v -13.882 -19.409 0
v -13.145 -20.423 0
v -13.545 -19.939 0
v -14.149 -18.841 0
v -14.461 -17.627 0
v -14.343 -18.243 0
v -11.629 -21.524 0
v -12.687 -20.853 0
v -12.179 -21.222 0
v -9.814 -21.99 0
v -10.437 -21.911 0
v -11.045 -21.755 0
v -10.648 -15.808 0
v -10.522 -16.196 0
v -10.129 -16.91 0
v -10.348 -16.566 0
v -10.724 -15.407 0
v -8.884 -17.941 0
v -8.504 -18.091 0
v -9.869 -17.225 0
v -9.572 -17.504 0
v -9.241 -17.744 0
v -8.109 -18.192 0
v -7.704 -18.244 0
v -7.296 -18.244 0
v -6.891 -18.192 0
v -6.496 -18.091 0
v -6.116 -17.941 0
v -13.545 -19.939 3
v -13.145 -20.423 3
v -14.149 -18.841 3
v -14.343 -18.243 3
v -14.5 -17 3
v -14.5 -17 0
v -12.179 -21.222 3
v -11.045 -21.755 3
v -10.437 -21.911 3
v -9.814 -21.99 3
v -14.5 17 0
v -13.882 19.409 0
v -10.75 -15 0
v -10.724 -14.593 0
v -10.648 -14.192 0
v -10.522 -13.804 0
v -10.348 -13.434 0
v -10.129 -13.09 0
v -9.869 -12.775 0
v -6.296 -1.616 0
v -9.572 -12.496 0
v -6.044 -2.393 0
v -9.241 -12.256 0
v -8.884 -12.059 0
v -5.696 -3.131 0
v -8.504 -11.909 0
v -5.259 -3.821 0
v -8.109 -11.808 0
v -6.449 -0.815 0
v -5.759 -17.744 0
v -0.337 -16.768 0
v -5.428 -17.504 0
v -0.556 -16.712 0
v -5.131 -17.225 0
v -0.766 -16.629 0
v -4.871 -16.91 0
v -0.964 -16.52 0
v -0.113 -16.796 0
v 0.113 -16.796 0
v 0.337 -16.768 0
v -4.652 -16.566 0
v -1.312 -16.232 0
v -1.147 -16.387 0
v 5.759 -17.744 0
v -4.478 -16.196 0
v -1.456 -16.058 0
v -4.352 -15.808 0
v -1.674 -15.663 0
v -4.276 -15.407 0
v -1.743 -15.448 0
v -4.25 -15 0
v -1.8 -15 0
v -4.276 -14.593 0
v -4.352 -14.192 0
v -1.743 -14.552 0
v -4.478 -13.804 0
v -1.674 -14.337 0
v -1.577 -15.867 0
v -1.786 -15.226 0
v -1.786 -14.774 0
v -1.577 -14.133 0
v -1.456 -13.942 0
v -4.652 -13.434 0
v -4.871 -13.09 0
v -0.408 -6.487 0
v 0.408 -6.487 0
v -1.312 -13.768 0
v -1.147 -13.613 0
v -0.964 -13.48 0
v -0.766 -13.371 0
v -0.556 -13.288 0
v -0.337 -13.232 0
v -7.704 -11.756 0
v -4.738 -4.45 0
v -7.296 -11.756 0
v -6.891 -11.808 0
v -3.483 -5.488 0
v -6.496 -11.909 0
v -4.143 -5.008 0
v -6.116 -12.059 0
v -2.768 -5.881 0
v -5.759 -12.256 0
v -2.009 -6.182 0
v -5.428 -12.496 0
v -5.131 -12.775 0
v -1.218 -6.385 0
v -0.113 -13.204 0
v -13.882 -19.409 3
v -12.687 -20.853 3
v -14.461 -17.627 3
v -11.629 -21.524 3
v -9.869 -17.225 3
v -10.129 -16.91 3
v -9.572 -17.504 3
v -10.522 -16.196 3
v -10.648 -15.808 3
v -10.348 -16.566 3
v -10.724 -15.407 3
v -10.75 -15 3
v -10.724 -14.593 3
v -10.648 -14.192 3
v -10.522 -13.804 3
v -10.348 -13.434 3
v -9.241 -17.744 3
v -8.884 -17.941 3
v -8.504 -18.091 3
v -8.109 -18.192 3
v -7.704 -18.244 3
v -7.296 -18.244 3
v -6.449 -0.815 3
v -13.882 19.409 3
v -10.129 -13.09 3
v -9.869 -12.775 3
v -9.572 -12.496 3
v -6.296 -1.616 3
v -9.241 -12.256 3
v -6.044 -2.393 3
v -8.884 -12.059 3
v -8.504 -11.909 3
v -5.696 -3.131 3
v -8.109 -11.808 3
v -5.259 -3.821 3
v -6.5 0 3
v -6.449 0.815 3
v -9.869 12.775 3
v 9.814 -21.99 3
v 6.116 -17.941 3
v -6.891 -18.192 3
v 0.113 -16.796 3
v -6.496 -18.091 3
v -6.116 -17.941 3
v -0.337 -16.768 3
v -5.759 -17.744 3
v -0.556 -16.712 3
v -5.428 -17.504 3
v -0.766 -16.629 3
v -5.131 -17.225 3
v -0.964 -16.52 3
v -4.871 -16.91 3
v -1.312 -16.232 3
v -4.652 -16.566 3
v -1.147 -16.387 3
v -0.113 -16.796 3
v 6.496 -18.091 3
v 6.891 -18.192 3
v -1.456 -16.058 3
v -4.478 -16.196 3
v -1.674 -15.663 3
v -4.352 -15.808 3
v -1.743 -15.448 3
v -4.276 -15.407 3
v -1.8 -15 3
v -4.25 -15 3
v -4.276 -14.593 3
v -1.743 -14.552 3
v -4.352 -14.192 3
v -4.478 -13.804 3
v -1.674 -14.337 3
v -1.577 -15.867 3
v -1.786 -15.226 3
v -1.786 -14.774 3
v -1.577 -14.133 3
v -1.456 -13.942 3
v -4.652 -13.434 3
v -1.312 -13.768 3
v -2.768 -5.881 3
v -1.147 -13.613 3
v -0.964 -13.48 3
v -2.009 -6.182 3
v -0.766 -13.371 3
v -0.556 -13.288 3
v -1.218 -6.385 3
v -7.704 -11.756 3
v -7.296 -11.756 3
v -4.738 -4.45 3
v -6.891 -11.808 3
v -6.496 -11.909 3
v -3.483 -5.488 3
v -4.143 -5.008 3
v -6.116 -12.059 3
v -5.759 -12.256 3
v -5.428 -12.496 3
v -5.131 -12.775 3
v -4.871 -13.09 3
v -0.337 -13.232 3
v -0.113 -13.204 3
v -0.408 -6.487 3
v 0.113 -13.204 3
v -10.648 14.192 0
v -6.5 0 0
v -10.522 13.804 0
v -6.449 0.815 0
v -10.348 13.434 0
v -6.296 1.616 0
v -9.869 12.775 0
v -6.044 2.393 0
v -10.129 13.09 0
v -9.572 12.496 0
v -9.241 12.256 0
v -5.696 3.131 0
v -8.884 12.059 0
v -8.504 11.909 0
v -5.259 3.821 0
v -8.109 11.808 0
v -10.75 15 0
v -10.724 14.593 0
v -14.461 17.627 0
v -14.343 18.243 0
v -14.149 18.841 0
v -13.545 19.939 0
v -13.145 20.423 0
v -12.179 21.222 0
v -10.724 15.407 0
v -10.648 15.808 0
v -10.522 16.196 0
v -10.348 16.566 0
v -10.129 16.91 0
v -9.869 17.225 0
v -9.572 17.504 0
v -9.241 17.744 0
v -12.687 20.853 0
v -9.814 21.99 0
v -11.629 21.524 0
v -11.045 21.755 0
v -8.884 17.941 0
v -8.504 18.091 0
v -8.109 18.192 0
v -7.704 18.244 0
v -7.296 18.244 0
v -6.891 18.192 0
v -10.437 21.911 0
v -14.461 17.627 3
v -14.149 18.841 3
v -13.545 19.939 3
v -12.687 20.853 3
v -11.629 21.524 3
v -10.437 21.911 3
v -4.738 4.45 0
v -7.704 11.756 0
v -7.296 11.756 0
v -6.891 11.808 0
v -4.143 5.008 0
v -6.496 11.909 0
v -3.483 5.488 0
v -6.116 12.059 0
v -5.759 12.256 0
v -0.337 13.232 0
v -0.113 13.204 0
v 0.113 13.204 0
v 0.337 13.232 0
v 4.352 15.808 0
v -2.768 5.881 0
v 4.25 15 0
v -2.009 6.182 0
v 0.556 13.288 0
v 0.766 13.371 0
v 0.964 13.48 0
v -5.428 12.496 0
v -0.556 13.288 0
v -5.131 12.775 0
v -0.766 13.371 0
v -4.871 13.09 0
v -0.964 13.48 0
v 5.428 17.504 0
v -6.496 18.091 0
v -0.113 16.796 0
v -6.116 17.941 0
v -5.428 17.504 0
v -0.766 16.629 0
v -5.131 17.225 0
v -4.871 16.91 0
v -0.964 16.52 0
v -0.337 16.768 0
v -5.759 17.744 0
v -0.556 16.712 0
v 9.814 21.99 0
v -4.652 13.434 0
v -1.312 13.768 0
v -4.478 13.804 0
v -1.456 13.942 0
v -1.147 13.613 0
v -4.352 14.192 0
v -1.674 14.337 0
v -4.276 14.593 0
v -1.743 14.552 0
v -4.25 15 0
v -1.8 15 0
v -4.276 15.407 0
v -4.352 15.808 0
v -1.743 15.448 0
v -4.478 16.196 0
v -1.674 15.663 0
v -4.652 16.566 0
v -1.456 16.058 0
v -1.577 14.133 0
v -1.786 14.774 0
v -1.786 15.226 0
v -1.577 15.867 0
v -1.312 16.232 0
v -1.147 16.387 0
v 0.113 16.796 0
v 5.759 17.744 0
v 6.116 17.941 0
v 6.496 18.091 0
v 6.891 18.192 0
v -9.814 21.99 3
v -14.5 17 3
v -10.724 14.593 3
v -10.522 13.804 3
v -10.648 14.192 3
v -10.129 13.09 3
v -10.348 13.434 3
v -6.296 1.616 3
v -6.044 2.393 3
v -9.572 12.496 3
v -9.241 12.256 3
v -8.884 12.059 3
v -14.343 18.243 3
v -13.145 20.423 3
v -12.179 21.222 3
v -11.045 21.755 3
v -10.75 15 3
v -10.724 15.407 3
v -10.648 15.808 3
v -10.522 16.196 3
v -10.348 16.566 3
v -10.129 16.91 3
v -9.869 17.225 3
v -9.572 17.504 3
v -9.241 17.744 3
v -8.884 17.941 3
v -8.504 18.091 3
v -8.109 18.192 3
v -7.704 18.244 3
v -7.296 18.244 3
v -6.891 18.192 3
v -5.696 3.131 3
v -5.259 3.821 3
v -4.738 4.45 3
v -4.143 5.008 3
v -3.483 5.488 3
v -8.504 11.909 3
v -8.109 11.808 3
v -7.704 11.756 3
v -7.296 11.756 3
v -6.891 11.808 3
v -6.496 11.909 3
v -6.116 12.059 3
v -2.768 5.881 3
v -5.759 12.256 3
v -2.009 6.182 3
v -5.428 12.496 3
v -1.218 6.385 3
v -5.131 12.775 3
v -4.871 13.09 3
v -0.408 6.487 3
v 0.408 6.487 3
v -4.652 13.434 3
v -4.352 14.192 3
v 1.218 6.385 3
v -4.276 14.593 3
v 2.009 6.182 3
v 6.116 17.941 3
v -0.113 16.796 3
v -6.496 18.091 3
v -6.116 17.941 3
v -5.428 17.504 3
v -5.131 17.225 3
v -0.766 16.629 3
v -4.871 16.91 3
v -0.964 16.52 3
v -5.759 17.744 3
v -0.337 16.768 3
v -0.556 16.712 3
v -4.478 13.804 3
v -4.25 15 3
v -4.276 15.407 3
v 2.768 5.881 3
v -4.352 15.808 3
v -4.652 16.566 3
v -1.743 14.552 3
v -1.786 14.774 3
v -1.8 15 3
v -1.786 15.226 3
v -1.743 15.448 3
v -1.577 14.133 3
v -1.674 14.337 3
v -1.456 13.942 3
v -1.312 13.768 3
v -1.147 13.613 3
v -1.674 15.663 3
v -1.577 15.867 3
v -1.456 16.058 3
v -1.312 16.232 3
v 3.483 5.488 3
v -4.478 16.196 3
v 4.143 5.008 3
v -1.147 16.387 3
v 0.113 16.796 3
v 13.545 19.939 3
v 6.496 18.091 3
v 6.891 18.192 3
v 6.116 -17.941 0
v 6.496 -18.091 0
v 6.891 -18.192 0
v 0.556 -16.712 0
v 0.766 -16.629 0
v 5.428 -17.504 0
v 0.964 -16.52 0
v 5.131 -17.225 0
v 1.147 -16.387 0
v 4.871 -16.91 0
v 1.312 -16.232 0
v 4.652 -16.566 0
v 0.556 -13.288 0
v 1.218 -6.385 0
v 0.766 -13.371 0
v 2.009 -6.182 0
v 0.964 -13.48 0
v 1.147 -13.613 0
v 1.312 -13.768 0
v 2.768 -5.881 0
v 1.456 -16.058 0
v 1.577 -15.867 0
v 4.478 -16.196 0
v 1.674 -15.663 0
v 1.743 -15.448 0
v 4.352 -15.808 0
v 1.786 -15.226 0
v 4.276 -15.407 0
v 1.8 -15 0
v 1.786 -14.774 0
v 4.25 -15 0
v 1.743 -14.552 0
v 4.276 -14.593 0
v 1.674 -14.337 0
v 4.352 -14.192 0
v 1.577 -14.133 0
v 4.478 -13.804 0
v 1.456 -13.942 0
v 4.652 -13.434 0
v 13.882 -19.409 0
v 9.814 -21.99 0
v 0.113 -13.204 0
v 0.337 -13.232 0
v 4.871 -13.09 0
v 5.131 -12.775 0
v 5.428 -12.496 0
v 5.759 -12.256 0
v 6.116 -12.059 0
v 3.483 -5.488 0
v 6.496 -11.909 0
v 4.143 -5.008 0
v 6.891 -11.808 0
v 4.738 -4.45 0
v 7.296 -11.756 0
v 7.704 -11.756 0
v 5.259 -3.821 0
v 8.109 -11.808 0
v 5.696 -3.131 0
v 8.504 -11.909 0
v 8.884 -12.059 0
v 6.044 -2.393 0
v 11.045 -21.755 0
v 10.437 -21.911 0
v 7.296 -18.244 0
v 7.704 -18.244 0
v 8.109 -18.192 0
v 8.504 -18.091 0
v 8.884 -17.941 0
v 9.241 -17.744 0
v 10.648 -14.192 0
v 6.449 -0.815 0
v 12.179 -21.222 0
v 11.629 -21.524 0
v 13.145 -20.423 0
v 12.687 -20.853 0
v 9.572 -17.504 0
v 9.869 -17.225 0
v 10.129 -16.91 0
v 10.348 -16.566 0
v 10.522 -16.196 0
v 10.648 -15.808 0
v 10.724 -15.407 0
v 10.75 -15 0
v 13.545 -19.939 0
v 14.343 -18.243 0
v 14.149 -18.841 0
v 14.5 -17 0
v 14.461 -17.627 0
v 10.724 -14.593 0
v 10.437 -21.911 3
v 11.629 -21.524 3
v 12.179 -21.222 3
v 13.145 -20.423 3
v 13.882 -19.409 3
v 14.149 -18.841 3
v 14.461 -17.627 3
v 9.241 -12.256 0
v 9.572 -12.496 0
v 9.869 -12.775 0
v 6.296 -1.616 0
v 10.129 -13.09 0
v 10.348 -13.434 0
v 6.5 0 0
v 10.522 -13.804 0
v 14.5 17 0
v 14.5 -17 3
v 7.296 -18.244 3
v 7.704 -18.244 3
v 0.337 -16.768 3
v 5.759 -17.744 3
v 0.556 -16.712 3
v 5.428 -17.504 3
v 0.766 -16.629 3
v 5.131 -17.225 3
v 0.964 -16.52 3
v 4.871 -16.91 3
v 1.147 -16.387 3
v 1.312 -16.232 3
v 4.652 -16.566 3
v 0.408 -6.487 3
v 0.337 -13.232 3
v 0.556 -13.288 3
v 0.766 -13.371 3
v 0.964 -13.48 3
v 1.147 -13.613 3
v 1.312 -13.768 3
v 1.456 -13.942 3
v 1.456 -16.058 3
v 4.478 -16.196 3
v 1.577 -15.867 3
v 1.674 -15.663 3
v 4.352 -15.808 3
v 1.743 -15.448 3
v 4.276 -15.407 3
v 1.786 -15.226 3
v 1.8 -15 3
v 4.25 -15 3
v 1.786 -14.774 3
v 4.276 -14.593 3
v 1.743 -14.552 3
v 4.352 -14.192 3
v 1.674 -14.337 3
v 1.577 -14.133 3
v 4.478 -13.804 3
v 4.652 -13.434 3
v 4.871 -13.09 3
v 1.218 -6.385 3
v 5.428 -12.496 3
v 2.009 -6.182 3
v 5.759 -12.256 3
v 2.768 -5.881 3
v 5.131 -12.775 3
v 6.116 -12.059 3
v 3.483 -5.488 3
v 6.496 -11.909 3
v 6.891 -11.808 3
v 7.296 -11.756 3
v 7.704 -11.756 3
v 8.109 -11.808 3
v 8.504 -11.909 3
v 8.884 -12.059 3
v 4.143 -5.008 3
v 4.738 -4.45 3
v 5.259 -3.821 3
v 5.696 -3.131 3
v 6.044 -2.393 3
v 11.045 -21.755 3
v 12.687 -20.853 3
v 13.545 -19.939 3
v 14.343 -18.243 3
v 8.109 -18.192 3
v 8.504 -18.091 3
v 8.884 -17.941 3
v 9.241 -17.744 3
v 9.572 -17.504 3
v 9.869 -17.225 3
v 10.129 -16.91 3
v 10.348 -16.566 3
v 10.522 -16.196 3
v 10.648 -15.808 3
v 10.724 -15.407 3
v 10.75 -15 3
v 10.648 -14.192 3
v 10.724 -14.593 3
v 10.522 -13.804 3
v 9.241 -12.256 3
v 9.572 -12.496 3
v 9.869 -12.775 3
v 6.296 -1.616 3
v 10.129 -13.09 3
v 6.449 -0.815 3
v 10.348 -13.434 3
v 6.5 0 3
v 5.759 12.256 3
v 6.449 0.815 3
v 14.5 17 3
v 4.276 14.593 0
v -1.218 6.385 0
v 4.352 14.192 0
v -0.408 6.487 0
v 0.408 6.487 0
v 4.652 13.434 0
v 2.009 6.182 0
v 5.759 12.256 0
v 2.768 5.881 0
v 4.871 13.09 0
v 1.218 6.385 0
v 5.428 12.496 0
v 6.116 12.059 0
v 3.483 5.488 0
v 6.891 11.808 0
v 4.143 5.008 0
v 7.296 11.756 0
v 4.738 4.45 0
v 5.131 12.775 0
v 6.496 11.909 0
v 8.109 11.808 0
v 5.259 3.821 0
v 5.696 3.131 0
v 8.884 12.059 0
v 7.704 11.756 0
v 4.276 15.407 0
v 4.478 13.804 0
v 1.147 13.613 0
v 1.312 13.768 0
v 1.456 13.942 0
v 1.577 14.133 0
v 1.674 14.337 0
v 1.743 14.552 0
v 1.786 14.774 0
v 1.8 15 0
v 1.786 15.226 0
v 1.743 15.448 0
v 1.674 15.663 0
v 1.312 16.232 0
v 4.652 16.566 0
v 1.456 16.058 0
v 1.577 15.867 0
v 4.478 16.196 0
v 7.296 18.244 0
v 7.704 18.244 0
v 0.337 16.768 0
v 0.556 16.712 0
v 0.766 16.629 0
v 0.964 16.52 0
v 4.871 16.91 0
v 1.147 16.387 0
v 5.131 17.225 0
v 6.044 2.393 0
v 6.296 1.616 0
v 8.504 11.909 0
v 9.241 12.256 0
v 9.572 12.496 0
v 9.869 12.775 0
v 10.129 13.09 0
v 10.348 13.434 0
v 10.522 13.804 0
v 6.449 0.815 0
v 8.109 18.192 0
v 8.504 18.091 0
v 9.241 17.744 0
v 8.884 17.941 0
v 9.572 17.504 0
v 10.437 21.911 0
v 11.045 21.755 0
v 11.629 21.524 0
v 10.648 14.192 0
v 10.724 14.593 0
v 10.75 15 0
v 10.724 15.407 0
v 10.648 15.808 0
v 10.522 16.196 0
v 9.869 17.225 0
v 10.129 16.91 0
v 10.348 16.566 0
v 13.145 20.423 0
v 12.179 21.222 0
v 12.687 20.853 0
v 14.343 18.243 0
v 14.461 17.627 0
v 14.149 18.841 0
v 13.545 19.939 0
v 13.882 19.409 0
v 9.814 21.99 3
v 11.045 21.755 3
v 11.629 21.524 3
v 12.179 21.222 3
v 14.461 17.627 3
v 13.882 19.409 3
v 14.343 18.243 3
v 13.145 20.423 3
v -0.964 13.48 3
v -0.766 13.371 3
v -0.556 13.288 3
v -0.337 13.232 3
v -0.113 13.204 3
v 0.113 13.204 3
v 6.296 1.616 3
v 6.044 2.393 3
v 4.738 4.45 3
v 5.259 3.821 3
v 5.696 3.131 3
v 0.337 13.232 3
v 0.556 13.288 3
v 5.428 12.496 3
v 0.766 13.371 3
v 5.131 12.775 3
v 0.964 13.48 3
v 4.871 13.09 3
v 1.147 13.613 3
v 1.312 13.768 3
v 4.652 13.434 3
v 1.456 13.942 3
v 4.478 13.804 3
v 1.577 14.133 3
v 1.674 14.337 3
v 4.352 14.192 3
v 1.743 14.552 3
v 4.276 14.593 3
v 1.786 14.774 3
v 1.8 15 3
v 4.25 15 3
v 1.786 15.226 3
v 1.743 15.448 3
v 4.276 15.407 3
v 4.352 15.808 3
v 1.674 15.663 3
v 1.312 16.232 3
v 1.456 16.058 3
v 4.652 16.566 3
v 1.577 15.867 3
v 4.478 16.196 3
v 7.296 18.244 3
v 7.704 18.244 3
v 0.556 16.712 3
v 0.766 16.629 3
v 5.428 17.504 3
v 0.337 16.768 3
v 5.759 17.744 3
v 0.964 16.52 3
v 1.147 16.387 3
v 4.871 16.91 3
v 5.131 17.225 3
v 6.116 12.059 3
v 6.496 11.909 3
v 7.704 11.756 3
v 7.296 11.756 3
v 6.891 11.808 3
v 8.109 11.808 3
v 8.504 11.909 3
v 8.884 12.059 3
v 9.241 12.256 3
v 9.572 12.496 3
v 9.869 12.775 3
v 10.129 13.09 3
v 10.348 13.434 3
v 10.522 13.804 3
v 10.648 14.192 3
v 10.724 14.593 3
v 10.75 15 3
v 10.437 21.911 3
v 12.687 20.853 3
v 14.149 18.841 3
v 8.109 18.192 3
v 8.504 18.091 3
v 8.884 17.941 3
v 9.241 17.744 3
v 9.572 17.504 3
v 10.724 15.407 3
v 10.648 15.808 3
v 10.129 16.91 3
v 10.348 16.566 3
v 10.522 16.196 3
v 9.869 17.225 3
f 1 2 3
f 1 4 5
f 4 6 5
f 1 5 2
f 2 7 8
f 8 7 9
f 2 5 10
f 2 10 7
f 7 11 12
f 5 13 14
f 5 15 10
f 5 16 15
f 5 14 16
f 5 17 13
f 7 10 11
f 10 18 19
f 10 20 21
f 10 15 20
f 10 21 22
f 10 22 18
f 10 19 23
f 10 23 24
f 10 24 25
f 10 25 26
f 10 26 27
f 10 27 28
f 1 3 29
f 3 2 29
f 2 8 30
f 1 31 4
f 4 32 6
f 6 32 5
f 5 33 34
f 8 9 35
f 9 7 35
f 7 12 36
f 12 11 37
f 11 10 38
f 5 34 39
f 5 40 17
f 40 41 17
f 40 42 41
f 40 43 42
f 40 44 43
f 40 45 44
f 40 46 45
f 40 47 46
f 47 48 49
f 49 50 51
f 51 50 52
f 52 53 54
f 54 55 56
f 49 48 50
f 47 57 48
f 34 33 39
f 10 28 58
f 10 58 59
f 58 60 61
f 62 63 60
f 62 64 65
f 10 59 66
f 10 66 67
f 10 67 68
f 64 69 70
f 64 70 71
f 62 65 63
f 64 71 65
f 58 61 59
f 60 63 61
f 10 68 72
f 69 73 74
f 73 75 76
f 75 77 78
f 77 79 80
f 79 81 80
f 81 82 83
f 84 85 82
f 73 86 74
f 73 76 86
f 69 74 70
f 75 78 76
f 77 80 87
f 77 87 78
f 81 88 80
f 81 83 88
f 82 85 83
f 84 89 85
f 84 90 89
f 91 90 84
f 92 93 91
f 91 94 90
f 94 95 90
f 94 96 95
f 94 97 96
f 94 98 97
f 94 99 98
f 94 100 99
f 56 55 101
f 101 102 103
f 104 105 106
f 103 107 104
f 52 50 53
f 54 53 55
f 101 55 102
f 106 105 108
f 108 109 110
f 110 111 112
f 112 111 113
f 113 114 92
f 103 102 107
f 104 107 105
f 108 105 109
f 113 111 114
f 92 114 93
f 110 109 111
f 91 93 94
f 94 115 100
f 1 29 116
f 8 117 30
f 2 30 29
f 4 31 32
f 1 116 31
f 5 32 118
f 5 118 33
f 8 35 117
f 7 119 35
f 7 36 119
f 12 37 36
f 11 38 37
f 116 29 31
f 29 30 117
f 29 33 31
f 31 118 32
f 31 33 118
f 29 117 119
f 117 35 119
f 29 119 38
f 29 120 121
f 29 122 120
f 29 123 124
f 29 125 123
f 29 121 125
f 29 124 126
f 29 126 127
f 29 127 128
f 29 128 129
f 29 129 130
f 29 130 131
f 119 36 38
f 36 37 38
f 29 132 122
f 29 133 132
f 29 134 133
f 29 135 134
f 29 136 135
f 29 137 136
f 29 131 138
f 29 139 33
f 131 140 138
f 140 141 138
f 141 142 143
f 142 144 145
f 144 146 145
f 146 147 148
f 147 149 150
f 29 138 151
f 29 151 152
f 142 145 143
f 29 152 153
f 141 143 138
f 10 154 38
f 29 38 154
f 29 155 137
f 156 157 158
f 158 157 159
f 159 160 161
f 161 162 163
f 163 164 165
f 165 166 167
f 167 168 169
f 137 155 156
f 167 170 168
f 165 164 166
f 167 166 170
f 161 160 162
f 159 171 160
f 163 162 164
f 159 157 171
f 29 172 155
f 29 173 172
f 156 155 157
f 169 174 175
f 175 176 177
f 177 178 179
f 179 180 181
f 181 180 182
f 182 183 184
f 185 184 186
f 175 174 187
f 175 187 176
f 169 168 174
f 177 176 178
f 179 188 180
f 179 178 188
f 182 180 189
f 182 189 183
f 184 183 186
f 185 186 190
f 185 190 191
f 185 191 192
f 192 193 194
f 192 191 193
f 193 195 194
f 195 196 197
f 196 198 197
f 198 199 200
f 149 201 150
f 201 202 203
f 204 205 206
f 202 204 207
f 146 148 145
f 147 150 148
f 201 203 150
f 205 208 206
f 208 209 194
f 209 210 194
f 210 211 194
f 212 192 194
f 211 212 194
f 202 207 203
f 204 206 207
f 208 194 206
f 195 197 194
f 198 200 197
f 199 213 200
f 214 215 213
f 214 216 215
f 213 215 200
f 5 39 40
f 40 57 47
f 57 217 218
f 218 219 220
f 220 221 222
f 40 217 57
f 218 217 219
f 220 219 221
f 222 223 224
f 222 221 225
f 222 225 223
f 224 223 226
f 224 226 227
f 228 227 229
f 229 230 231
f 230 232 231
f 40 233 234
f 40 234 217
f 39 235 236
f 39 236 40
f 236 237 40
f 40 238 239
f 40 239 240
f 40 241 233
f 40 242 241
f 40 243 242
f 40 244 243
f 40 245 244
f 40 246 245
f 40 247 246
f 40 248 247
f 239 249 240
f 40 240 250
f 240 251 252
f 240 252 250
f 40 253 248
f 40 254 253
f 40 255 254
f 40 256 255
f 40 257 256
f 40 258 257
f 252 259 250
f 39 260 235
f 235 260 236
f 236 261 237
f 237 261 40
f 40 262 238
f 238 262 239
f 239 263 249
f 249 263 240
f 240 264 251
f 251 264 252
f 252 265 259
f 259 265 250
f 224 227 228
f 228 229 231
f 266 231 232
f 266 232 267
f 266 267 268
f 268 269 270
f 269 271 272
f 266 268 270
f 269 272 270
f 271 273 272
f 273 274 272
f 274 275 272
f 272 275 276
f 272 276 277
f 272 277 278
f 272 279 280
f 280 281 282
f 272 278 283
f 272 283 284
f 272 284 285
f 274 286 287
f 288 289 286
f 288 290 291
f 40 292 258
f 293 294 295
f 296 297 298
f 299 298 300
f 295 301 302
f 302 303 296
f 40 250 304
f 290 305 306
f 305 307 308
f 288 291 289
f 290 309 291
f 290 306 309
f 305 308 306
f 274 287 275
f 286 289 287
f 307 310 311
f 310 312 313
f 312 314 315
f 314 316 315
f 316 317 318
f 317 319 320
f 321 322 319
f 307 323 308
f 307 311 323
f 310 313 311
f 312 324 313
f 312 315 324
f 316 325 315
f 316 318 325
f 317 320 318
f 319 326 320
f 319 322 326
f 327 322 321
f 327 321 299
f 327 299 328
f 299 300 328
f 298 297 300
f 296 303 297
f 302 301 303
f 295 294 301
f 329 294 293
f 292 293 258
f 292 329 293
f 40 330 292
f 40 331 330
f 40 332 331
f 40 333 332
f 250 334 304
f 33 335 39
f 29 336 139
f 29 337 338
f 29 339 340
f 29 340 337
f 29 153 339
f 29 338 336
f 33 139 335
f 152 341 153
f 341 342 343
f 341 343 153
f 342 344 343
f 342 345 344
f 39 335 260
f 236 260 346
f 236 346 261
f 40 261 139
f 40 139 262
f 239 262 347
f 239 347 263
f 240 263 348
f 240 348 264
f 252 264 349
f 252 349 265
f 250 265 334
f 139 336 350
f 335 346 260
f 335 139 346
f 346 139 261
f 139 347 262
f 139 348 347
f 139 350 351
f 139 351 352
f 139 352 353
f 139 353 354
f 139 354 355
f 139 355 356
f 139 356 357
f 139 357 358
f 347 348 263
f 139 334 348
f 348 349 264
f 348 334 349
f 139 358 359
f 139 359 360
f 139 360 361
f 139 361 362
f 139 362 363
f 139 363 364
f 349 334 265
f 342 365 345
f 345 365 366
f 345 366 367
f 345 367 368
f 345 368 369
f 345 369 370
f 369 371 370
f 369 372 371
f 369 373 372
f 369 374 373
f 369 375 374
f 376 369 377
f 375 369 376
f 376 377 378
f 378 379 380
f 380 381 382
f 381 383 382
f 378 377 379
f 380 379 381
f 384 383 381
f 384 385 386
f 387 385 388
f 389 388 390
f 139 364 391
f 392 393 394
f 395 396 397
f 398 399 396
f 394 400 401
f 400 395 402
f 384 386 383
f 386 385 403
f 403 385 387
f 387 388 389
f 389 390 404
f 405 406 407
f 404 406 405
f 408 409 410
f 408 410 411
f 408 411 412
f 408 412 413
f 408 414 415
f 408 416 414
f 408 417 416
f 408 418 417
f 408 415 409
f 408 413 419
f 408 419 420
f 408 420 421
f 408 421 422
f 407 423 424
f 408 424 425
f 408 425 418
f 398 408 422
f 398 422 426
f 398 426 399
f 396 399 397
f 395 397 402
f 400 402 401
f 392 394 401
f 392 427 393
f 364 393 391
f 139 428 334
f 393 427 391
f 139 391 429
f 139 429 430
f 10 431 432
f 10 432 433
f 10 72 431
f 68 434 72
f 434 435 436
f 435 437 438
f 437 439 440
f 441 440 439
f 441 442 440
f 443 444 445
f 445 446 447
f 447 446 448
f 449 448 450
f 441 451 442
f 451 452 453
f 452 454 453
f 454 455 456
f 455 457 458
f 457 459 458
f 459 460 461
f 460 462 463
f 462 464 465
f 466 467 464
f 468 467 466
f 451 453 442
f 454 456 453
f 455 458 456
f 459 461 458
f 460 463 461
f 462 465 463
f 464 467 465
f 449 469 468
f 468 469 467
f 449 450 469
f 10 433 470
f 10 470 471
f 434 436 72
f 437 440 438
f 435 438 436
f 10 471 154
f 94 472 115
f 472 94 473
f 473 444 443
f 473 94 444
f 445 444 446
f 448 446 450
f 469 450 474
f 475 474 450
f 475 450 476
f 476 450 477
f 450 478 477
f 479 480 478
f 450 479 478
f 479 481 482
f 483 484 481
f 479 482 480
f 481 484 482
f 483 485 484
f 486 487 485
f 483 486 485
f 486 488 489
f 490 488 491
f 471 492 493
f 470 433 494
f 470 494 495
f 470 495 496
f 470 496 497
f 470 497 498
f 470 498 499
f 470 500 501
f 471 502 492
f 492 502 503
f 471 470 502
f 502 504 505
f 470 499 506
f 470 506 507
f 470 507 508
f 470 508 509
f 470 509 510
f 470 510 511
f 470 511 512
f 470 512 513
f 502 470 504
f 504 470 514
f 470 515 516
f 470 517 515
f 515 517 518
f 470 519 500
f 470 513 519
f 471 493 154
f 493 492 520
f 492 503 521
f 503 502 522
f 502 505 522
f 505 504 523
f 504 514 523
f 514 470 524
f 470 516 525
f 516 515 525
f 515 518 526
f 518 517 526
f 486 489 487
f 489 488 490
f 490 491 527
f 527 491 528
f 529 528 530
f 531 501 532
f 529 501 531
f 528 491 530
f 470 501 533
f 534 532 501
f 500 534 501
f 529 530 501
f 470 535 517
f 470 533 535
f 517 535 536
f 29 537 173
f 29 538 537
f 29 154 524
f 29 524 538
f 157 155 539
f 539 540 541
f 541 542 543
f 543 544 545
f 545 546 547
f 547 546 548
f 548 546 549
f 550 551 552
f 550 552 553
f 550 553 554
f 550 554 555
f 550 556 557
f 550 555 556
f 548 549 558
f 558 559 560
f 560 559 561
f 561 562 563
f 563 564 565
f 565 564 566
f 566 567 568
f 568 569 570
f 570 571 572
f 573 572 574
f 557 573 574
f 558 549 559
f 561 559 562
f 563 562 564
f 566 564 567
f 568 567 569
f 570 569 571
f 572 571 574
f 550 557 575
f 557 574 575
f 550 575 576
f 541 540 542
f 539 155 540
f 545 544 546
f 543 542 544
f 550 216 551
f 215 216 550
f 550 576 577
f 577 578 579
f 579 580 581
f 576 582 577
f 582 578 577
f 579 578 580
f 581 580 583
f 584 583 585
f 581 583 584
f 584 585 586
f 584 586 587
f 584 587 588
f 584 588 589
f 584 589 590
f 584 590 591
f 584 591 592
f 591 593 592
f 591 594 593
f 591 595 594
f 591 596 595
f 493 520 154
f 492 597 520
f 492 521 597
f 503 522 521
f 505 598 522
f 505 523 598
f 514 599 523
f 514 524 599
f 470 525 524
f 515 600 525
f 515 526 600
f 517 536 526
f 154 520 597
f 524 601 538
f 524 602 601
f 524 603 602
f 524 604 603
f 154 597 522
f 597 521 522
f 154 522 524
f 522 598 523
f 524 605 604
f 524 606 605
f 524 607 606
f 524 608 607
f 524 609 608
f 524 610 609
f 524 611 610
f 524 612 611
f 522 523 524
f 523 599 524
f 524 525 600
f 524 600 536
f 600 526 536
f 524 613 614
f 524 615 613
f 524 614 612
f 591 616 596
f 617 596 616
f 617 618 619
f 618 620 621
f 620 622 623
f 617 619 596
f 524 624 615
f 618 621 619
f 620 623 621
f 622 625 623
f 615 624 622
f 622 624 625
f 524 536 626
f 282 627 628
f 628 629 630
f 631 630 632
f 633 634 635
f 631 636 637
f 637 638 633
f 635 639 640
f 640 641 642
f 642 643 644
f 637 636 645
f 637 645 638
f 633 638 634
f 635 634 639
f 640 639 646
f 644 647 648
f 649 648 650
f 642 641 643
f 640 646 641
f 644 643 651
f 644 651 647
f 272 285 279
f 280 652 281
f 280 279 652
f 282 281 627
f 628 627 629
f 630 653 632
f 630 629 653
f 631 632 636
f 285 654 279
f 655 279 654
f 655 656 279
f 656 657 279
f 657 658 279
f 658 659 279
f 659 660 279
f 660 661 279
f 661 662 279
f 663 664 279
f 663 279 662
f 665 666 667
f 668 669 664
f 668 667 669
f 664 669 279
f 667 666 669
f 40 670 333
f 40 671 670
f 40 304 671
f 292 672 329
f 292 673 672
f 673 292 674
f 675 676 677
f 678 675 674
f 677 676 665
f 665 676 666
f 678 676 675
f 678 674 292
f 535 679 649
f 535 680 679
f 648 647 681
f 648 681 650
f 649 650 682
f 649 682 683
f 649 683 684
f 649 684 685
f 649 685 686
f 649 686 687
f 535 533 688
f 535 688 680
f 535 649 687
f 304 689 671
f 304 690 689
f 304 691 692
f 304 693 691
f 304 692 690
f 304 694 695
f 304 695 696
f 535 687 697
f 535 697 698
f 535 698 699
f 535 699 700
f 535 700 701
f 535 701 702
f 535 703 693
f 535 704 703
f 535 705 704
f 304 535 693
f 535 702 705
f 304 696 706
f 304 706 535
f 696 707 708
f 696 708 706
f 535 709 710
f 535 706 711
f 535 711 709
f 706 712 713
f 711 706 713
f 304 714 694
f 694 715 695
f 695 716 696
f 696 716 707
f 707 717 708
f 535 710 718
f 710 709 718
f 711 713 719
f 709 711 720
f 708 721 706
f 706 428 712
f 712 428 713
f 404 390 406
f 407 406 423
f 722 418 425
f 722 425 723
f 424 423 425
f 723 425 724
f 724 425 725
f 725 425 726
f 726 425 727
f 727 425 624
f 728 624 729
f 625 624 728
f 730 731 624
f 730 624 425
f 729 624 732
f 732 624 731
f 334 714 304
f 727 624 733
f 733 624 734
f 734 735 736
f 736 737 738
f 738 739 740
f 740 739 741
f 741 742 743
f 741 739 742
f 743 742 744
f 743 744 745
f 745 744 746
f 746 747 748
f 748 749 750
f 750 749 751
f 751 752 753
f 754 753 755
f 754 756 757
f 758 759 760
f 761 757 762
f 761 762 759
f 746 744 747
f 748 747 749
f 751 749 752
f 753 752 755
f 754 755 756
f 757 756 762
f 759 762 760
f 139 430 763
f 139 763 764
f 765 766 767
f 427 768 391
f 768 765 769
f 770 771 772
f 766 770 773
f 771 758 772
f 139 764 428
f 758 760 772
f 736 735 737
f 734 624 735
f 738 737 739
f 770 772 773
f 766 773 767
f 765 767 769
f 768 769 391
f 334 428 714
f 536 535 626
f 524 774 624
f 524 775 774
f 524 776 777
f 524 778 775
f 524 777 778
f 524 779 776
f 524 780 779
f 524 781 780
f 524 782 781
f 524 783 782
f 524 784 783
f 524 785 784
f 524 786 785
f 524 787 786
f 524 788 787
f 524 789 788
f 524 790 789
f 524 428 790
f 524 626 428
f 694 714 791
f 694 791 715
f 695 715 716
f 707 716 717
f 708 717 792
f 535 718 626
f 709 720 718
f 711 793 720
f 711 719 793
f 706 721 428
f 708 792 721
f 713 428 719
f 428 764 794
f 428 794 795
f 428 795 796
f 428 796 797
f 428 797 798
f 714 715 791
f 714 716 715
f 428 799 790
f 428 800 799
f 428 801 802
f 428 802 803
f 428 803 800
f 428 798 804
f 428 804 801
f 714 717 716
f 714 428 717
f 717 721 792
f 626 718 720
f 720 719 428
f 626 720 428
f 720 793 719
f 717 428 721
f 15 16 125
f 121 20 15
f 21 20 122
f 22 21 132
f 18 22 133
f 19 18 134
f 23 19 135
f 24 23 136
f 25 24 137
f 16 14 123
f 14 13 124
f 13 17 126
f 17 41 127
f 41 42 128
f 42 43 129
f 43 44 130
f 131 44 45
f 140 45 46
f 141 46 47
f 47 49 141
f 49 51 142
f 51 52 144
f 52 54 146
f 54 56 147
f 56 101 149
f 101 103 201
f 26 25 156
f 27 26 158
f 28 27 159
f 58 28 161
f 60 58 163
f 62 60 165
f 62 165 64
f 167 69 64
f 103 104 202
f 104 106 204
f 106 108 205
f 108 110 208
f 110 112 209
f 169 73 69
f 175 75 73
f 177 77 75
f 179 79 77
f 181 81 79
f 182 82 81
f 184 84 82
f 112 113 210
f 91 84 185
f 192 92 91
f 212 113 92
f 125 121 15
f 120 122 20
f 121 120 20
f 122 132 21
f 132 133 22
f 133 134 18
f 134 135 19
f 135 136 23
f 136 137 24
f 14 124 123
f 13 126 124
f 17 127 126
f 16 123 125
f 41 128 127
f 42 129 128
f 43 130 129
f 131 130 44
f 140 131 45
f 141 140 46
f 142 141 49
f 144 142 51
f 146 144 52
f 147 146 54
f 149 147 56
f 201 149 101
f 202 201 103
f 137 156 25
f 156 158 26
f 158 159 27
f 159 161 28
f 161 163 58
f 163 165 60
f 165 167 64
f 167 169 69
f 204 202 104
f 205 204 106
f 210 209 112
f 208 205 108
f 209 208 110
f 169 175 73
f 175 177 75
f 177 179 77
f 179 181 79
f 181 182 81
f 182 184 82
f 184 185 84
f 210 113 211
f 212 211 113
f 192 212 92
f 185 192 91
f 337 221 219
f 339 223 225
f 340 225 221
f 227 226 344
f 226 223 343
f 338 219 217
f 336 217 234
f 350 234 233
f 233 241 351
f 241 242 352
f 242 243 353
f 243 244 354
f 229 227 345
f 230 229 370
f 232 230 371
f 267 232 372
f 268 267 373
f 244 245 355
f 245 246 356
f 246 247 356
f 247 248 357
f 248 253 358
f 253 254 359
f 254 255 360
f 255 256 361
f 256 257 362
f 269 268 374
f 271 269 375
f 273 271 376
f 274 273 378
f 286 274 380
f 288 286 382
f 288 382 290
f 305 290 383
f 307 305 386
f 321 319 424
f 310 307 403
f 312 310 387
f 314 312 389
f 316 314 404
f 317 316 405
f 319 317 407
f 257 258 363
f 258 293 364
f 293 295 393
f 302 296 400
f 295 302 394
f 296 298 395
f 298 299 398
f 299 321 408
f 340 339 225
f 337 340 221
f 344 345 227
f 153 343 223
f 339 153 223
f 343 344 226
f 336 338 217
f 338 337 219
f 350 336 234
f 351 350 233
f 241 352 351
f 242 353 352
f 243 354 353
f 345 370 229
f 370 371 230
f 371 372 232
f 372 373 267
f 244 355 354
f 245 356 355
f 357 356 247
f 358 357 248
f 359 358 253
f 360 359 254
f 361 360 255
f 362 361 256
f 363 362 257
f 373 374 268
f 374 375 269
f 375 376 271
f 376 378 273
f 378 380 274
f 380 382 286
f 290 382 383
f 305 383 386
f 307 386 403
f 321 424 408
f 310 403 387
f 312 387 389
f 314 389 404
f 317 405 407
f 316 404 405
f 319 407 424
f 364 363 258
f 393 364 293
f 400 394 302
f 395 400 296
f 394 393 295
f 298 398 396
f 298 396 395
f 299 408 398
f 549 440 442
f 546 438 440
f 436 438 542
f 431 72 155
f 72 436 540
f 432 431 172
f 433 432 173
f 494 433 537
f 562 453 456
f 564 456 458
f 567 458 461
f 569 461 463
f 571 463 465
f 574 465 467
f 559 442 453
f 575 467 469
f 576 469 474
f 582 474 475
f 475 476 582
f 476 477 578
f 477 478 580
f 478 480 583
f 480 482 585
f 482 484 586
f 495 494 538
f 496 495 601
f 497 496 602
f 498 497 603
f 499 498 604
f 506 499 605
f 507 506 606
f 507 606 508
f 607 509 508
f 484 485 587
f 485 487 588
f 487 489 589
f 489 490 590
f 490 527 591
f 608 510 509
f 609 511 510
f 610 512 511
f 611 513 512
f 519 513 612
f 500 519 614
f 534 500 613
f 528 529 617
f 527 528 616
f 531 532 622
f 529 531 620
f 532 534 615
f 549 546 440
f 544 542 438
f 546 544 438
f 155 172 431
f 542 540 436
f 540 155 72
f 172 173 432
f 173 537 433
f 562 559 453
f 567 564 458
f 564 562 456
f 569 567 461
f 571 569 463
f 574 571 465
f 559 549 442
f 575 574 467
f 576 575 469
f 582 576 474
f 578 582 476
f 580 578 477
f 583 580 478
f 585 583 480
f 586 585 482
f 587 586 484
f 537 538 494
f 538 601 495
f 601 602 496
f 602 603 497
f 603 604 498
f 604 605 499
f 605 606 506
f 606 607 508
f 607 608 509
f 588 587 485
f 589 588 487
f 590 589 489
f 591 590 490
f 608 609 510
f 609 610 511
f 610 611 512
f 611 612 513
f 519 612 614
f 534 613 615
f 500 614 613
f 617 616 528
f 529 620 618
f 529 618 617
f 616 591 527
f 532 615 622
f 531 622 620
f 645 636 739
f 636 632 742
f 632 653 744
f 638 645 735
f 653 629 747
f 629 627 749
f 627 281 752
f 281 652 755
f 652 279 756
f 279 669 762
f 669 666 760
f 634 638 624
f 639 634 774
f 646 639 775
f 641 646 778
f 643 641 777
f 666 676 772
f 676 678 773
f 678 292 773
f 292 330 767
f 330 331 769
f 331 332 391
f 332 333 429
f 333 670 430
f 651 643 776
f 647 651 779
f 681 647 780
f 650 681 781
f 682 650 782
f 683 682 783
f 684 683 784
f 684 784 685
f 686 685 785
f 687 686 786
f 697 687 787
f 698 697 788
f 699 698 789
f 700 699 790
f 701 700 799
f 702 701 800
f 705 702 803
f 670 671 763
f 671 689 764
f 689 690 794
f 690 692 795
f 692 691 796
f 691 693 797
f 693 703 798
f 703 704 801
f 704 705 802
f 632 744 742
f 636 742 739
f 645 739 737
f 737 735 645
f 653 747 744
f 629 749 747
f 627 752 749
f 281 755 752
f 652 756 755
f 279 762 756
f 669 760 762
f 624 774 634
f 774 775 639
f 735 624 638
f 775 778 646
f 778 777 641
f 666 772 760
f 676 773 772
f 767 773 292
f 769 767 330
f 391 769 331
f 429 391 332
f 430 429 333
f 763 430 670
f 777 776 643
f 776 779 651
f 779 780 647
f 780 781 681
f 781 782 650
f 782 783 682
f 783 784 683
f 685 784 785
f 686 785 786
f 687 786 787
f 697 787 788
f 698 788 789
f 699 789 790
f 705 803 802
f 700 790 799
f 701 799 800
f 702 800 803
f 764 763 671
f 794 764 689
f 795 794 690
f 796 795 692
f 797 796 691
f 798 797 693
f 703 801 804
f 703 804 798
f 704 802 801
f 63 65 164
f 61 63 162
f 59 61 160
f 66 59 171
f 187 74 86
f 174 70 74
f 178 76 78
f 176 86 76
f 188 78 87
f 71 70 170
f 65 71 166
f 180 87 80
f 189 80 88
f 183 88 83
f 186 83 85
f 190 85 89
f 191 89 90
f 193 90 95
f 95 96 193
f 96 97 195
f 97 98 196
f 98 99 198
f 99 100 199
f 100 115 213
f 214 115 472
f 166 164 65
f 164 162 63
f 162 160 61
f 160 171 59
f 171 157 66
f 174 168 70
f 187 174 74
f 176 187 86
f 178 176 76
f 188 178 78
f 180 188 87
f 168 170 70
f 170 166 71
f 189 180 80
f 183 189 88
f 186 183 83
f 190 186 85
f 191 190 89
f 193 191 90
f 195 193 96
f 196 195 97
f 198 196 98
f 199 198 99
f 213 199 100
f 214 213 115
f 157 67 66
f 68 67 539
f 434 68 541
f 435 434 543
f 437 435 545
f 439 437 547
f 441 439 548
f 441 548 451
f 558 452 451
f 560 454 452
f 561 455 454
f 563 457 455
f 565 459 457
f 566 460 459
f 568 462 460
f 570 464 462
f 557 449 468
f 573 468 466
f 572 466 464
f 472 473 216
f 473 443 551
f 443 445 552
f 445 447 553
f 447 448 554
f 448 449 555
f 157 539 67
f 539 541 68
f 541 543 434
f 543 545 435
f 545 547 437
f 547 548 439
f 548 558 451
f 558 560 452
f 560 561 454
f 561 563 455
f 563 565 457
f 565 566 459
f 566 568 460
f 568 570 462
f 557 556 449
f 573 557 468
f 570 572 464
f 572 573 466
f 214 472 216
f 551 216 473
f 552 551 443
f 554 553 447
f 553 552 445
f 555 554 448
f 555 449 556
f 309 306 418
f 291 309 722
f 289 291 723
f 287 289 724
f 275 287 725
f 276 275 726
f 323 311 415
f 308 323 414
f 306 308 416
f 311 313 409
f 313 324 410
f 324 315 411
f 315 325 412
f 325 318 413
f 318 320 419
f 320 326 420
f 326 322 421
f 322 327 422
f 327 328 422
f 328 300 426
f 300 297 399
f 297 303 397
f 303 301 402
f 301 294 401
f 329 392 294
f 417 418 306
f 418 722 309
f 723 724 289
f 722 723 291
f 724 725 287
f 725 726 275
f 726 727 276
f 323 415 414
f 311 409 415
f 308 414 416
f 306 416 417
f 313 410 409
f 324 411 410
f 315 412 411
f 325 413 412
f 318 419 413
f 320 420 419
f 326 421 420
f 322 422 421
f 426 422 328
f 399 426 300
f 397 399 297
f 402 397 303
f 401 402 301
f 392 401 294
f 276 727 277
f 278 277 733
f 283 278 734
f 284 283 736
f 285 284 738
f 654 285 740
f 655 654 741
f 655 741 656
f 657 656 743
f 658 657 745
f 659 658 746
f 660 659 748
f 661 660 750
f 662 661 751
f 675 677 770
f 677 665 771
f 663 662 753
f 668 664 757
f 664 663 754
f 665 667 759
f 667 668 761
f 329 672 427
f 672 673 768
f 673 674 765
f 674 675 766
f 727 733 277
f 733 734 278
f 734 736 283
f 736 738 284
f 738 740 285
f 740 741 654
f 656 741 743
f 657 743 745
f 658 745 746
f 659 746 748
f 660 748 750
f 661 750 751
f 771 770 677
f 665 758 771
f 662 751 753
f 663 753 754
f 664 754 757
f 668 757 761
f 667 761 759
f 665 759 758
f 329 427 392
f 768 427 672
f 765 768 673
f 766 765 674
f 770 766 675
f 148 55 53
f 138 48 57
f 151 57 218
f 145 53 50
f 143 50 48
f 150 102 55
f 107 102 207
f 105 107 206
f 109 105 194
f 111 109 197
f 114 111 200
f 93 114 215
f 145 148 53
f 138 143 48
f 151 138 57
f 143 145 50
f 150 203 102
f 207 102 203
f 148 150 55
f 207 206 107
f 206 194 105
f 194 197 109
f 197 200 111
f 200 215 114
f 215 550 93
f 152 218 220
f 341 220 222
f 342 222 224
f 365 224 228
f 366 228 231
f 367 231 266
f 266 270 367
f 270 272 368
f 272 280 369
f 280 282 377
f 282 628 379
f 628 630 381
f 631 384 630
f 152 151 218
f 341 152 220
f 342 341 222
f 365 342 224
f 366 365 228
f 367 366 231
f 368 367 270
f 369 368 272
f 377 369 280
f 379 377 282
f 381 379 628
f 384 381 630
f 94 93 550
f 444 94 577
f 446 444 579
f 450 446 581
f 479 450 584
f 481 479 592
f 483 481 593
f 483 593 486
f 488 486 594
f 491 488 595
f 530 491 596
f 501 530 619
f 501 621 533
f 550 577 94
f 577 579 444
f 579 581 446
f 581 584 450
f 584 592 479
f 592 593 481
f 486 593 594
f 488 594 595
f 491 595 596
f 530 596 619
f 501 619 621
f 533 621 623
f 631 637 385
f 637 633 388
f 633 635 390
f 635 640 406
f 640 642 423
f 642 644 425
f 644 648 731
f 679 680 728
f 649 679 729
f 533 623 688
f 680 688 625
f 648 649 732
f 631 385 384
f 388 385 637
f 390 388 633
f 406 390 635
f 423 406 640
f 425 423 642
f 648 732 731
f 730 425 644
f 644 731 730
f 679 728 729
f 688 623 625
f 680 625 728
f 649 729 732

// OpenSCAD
$fn = 50;

difference() {
	union() {
		hull() {
			translate(v = [-9.5, 17.0, 0]) {
				cylinder(h = 3, r = 5);
			}
			translate(v = [9.5, 17.0, 0]) {
				cylinder(h = 3, r = 5);
			}
			translate(v = [-9.5, -17.0, 0]) {
				cylinder(h = 3, r = 5);
			}
			translate(v = [9.5, -17.0, 0]) {
				cylinder(h = 3, r = 5);
			}
		}
	}
	union() {
		translate(v = [-7.5, -15.0, 0]) {
			cylinder(h = 3, r = 3.25);
		}
		translate(v = [-7.5, 15.0, 0]) {
			cylinder(h = 3, r = 3.25);
		}
		translate(v = [7.5, -15.0, 0]) {
			cylinder(h = 3, r = 3.25);
		}
		translate(v = [7.5, 15.0, 0]) {
			cylinder(h = 3, r = 3.25);
		}
		translate(v = [0.0, -15.0, 0]) {
			cylinder(h = 3, r = 1.8);
		}
		translate(v = [0.0, 15.0, 0]) {
			cylinder(h = 3, r = 1.8);
		}
		cylinder(h = 3, r = 6.5);
	}
}
